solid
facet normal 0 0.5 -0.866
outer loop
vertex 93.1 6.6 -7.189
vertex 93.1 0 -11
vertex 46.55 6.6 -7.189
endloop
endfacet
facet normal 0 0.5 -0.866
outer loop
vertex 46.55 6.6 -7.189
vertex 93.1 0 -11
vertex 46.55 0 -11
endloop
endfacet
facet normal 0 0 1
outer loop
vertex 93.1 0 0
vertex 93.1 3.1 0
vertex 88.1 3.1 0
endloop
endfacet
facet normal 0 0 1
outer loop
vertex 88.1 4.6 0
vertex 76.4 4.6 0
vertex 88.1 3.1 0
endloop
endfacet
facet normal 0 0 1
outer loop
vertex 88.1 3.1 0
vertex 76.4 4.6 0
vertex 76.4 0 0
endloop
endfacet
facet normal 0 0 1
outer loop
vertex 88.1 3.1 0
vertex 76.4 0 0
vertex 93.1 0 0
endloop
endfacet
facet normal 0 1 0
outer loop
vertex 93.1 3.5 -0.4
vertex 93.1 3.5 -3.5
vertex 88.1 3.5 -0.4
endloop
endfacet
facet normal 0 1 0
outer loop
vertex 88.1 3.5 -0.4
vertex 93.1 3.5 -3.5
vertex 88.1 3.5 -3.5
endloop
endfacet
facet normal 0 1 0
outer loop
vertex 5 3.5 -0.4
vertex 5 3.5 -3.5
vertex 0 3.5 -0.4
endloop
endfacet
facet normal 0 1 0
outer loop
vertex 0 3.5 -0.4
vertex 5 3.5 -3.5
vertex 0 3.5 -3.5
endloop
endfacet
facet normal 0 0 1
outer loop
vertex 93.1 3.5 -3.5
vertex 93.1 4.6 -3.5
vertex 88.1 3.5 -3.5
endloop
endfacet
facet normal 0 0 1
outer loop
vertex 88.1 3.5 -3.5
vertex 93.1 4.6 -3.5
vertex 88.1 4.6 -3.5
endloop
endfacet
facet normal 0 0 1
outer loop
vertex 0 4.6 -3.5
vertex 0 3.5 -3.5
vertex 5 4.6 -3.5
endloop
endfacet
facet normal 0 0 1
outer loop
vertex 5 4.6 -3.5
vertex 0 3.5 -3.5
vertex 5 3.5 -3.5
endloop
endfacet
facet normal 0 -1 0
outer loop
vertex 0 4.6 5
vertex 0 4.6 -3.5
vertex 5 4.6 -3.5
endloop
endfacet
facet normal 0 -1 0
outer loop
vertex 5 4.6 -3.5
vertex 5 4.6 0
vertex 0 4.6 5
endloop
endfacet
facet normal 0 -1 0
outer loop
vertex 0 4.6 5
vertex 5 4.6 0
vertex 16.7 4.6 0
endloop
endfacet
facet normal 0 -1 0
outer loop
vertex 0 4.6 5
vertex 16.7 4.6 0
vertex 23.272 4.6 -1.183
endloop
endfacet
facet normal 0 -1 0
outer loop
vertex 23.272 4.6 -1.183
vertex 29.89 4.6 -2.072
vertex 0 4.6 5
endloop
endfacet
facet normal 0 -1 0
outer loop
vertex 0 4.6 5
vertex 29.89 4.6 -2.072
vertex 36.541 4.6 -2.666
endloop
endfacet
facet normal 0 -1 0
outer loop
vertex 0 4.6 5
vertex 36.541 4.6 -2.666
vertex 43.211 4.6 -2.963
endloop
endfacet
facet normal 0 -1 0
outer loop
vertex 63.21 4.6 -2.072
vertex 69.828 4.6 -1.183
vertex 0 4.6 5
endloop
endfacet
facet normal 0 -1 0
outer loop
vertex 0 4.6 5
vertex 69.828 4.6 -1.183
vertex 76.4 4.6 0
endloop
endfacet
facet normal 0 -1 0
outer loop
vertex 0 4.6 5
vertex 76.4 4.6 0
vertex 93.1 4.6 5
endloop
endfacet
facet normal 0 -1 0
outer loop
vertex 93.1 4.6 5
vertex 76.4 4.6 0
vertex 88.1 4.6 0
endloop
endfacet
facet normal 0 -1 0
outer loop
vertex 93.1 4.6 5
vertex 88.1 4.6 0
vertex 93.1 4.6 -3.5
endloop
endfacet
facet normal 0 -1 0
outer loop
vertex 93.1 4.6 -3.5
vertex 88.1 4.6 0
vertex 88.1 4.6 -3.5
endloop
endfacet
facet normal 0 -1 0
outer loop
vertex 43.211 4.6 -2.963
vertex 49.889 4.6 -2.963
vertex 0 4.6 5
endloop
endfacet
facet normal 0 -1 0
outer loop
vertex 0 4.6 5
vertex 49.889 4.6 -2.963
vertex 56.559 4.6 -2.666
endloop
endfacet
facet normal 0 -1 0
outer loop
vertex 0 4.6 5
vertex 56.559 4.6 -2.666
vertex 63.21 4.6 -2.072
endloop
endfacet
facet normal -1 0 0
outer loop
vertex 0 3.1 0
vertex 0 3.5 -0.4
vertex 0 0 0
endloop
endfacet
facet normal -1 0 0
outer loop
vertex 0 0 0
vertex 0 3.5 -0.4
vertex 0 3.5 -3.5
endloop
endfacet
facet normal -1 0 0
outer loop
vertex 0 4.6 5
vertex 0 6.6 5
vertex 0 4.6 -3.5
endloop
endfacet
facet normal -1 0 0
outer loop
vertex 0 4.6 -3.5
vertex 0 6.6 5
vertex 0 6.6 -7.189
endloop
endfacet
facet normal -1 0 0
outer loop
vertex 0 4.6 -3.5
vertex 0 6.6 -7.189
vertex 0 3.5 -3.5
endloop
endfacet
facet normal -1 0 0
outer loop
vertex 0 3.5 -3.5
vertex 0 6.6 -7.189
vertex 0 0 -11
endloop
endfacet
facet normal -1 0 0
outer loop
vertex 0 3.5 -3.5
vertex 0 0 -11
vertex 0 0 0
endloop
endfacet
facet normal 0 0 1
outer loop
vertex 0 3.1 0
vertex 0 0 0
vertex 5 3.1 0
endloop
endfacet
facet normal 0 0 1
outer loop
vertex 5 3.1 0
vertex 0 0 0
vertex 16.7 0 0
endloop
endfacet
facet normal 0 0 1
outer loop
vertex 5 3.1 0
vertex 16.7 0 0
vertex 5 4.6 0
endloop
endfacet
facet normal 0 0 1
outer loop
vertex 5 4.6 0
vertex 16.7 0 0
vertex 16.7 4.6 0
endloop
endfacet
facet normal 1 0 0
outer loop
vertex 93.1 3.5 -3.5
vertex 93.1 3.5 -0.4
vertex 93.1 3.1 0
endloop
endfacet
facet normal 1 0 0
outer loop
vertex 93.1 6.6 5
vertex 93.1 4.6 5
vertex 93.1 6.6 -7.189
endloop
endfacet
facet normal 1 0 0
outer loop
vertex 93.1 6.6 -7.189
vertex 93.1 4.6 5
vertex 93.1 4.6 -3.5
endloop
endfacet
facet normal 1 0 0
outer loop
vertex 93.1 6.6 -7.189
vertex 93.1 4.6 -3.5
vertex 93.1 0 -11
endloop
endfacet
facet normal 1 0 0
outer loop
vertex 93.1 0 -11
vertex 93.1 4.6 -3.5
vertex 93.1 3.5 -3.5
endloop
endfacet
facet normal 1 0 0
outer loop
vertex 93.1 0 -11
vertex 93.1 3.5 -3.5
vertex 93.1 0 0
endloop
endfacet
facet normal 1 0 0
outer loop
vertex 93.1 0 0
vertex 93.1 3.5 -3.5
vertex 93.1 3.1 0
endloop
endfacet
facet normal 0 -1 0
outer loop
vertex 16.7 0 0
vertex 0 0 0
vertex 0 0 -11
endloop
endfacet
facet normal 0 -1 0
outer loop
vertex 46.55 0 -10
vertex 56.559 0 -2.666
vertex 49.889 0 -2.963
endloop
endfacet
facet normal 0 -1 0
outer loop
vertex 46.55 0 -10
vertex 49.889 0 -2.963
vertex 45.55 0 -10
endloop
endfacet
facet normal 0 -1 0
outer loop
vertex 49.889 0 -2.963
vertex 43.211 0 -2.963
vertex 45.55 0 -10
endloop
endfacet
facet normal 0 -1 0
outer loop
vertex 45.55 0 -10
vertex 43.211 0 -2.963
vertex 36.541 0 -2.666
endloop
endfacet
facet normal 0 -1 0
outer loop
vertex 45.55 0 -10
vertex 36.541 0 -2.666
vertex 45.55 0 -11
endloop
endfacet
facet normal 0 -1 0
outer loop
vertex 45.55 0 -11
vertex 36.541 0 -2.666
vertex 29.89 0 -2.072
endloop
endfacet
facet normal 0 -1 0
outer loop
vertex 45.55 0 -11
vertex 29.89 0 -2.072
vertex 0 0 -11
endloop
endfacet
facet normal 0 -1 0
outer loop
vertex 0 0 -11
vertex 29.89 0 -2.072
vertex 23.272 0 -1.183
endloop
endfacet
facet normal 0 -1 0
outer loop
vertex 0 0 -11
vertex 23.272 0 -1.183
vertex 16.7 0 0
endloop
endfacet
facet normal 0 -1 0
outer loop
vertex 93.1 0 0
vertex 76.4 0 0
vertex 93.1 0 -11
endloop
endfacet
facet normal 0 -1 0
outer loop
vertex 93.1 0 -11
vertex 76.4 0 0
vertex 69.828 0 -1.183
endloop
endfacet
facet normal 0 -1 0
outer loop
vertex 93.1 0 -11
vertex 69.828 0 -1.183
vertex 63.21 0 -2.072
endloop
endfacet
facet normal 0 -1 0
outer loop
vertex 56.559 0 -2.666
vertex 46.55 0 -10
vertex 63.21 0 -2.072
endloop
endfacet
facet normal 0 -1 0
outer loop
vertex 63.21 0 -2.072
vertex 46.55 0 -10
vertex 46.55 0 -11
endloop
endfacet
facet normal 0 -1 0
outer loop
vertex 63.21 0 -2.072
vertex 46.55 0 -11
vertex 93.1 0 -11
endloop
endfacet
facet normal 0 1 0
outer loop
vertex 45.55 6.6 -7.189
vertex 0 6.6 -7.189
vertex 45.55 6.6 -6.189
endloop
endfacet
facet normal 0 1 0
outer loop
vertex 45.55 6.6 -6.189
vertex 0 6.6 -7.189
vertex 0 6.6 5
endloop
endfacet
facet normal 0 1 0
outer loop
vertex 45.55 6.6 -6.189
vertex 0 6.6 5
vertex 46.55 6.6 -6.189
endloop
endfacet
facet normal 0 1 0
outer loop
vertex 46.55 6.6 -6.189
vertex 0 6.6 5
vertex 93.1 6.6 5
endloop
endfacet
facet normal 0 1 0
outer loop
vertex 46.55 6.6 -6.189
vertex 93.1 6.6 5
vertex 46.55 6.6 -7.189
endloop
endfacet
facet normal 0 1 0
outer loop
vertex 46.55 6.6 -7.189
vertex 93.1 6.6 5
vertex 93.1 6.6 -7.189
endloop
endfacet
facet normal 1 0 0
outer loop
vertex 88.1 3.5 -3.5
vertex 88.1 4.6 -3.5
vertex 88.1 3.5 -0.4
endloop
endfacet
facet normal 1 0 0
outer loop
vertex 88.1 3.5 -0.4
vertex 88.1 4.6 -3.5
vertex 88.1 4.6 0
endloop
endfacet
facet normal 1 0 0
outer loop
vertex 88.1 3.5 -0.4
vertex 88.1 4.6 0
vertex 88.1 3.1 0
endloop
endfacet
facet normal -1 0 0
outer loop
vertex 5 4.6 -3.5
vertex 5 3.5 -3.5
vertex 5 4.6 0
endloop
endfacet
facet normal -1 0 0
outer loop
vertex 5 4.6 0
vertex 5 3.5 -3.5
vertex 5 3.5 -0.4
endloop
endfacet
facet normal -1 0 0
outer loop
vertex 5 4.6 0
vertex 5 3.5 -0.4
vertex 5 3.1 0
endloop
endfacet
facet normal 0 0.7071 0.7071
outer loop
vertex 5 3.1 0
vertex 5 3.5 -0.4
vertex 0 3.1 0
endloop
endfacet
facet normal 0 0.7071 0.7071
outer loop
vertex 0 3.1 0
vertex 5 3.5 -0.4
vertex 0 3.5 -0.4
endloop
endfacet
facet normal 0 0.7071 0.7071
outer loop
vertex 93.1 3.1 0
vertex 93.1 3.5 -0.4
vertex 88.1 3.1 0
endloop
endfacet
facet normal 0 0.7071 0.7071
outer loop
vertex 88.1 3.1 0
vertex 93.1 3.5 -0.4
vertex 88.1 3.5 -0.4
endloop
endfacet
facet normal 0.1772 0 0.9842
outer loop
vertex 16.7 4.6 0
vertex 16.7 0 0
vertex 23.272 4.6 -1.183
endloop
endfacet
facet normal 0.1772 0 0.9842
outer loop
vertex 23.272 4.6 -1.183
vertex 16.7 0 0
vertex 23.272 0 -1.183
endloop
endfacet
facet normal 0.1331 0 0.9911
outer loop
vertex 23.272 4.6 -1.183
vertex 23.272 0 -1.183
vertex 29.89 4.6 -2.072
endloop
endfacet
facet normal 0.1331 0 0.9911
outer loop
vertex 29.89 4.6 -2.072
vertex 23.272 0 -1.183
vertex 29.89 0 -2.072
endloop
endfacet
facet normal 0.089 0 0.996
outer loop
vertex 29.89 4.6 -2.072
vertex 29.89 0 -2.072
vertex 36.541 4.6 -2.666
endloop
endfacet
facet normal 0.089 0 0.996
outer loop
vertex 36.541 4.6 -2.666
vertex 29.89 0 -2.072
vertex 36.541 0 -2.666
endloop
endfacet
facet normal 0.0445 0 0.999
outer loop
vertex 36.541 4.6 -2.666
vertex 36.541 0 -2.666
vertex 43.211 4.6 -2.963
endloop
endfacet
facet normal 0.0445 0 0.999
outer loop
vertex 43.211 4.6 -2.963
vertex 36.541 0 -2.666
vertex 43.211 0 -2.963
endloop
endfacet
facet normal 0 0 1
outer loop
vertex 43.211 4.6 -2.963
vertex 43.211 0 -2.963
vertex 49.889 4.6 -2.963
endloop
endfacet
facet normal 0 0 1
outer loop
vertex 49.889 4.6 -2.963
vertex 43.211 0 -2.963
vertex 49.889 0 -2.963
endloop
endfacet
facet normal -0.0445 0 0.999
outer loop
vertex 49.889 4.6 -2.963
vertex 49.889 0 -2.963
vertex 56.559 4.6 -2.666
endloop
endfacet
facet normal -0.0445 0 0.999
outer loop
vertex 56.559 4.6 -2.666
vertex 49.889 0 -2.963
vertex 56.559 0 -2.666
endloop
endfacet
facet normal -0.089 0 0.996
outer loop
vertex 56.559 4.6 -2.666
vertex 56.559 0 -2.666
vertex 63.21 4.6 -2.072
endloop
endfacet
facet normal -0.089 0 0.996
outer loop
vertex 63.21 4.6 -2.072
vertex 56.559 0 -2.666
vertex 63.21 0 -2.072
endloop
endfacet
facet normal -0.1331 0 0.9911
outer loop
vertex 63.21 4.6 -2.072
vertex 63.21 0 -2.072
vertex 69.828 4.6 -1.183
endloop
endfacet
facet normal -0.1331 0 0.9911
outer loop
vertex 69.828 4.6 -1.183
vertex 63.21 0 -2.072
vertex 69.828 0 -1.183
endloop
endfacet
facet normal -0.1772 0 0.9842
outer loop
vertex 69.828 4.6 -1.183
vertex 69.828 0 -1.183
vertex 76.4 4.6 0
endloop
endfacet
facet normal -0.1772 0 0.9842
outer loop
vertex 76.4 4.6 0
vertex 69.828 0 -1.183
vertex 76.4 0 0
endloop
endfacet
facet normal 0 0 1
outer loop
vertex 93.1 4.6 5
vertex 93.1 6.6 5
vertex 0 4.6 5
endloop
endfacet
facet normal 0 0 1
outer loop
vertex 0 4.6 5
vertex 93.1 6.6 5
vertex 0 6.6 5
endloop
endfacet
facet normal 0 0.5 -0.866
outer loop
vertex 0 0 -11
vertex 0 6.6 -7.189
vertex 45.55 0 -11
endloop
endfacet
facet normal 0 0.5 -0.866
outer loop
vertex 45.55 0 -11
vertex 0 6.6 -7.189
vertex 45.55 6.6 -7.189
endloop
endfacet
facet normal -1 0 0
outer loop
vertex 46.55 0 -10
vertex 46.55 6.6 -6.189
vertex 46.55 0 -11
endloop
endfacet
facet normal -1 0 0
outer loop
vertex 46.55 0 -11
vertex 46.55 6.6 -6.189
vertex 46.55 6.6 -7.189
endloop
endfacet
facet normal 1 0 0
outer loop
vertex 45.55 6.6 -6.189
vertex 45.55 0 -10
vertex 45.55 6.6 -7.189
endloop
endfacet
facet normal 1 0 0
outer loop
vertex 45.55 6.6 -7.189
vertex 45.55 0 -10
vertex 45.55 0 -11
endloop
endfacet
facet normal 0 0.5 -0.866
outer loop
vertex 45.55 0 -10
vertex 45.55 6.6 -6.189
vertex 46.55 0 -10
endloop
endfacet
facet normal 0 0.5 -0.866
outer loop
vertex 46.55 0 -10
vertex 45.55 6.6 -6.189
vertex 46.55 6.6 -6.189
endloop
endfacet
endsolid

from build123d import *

# Parameters (mm, degrees)
SKETCH_2_W                  = 93.1
SKETCH_2_H                  = 10
EXTRUDE_1_DEPTH             = 3.5
SKETCH_4_W                  = 93.1
SKETCH_4_H                  = 6.5
EXTRUDE_2_DEPTH             = 1.1
SKETCH_5_W                  = 93.1
SKETCH_5_H                  = 10
EXTRUDE_3_DEPTH             = 2
CUT_EXTRUDE_1_DEPTH         = 94.867832616
SKETCH_7_W                  = 83.1
SKETCH_7_H                  = 1.1
EXTRUDE_4_DEPTH             = 3.5
CHAMFER_1_SIZE              = 0.4
CUT_EXTRUDE_2_REACH         = 95.868
SKETCH_8_R                  = 150
SKETCH_9_W                  = 93.1
SKETCH_9_H                  = 2
EXTRUDE_5_DEPTH             = 5
EXTRUDE_5_DIRECTION_2_REACH = 95.868
SKETCH_10_W                 = 93.1
SKETCH_10_H                 = 7.621023553
EXTRUDE_6_DEPTH             = 1
SKETCH_11_W                 = 1
SKETCH_11_H                 = 7.621023553
CUT_EXTRUDE_3_DEPTH         = 1


with BuildPart() as part:
    # 草图2 → 凸台-拉伸1 (new body)
    with BuildSketch(Plane(origin=(0, 0, 0), x_dir=(1, 0, 0), z_dir=(0, 1, 0))):
        with Locations((46.55, 5)):
            Rectangle(SKETCH_2_W, SKETCH_2_H)
    extrude(amount=EXTRUDE_1_DEPTH)

    # 草图4 → 凸台-拉伸2 (add)
    with BuildSketch(Plane(origin=(0, 3.5, 0), x_dir=(1, 0, 0), z_dir=(0, 1, 0))):
        with Locations((46.55, 6.75)):
            Rectangle(SKETCH_4_W, SKETCH_4_H)
    extrude(amount=EXTRUDE_2_DEPTH)

    # 草图5 → 凸台-拉伸3 (add)
    with BuildSketch(Plane(origin=(0, 4.6, 0), x_dir=(1, 0, 0), z_dir=(0, 1, 0))):
        with Locations((46.55, 5)):
            Rectangle(SKETCH_5_W, SKETCH_5_H)
    extrude(amount=EXTRUDE_3_DEPTH)

    # 草图6 → 切除-拉伸1 (cut, through all)
    with BuildSketch(Plane.ZY):
        Polygon((-10, 0), (-6.189488223, 6.6), (-10, 6.6), align=None)
    extrude(amount=-CUT_EXTRUDE_1_DEPTH, mode=Mode.SUBTRACT)

    # 草图7 → 凸台-拉伸4 (add)
    with BuildSketch(Plane.XY.offset(-3.5)):
        with Locations((46.55, 4.05)):
            Rectangle(SKETCH_7_W, SKETCH_7_H)
    extrude(amount=EXTRUDE_4_DEPTH)

    # 倒角1
    chamfer_1_edges = [part.edges().sort_by_distance(p)[0] for p in [
        (90.6, 3.5, 0),
        (2.5, 3.5, 0),
    ]]
    chamfer(chamfer_1_edges, length=CHAMFER_1_SIZE)

    # 草图8 → 切除-拉伸2 (cut, up to next)
    with BuildSketch(Plane.XZ, mode=Mode.PRIVATE) as cut_extrude_2_sk1:
        with Locations((46.55, 147)):
            Circle(SKETCH_8_R)
    cut_extrude_2_tool1 = extrude(cut_extrude_2_sk1.sketch, amount=-CUT_EXTRUDE_2_REACH, mode=Mode.PRIVATE) & part.part
    add(cut_extrude_2_tool1.solids().sort_by_distance((46.55, 0, 147))[0], mode=Mode.SUBTRACT)

    # 草图9 → 凸台-拉伸5 (add)
    with BuildSketch(Plane.XY):
        with Locations((46.55, 5.6)):
            Rectangle(SKETCH_9_W, SKETCH_9_H)
    extrude(amount=EXTRUDE_5_DEPTH)

    # 草图9 → 凸台-拉伸5 direction 2 (add, up to next)
    with BuildSketch(Plane.XY, mode=Mode.PRIVATE) as extrude_5_direction_2_sk1:
        with Locations((46.55, 5.6)):
            Rectangle(SKETCH_9_W, SKETCH_9_H)
    extrude_5_direction_2_tool1 = extrude(extrude_5_direction_2_sk1.sketch, amount=-EXTRUDE_5_DIRECTION_2_REACH, mode=Mode.PRIVATE) - part.part
    add(extrude_5_direction_2_tool1.solids().sort_by_distance((46.55, 5.6, 0))[0])

    # 草图10 → 凸台-拉伸6 (add, along a direction that is not the sketch's normal)
    with BuildSketch(Plane(origin=(0, 4.330127019, -7.5), x_dir=(-1, 0, 0), z_dir=(0, 0.4999999999999947, -0.8660254037844417))):
        with Locations((-46.55, -1.189488223)):
            Rectangle(SKETCH_10_W, SKETCH_10_H)
    extrude(amount=EXTRUDE_6_DEPTH, dir=(0, 0, -1))

    # 草图11 → 切除-拉伸3 (cut, along a direction that is not the sketch's normal)
    with BuildSketch(Plane(origin=(0, 4.763139721, -8.25), x_dir=(-1, 0, 0), z_dir=(0, 0.49999999999999484, -0.8660254037844418))):
        with Locations((-46.05, -1.689488223)):
            Rectangle(SKETCH_11_W, SKETCH_11_H)
    extrude(amount=-CUT_EXTRUDE_3_DEPTH, dir=(0, 0, -1), mode=Mode.SUBTRACT)


solid = part.part
